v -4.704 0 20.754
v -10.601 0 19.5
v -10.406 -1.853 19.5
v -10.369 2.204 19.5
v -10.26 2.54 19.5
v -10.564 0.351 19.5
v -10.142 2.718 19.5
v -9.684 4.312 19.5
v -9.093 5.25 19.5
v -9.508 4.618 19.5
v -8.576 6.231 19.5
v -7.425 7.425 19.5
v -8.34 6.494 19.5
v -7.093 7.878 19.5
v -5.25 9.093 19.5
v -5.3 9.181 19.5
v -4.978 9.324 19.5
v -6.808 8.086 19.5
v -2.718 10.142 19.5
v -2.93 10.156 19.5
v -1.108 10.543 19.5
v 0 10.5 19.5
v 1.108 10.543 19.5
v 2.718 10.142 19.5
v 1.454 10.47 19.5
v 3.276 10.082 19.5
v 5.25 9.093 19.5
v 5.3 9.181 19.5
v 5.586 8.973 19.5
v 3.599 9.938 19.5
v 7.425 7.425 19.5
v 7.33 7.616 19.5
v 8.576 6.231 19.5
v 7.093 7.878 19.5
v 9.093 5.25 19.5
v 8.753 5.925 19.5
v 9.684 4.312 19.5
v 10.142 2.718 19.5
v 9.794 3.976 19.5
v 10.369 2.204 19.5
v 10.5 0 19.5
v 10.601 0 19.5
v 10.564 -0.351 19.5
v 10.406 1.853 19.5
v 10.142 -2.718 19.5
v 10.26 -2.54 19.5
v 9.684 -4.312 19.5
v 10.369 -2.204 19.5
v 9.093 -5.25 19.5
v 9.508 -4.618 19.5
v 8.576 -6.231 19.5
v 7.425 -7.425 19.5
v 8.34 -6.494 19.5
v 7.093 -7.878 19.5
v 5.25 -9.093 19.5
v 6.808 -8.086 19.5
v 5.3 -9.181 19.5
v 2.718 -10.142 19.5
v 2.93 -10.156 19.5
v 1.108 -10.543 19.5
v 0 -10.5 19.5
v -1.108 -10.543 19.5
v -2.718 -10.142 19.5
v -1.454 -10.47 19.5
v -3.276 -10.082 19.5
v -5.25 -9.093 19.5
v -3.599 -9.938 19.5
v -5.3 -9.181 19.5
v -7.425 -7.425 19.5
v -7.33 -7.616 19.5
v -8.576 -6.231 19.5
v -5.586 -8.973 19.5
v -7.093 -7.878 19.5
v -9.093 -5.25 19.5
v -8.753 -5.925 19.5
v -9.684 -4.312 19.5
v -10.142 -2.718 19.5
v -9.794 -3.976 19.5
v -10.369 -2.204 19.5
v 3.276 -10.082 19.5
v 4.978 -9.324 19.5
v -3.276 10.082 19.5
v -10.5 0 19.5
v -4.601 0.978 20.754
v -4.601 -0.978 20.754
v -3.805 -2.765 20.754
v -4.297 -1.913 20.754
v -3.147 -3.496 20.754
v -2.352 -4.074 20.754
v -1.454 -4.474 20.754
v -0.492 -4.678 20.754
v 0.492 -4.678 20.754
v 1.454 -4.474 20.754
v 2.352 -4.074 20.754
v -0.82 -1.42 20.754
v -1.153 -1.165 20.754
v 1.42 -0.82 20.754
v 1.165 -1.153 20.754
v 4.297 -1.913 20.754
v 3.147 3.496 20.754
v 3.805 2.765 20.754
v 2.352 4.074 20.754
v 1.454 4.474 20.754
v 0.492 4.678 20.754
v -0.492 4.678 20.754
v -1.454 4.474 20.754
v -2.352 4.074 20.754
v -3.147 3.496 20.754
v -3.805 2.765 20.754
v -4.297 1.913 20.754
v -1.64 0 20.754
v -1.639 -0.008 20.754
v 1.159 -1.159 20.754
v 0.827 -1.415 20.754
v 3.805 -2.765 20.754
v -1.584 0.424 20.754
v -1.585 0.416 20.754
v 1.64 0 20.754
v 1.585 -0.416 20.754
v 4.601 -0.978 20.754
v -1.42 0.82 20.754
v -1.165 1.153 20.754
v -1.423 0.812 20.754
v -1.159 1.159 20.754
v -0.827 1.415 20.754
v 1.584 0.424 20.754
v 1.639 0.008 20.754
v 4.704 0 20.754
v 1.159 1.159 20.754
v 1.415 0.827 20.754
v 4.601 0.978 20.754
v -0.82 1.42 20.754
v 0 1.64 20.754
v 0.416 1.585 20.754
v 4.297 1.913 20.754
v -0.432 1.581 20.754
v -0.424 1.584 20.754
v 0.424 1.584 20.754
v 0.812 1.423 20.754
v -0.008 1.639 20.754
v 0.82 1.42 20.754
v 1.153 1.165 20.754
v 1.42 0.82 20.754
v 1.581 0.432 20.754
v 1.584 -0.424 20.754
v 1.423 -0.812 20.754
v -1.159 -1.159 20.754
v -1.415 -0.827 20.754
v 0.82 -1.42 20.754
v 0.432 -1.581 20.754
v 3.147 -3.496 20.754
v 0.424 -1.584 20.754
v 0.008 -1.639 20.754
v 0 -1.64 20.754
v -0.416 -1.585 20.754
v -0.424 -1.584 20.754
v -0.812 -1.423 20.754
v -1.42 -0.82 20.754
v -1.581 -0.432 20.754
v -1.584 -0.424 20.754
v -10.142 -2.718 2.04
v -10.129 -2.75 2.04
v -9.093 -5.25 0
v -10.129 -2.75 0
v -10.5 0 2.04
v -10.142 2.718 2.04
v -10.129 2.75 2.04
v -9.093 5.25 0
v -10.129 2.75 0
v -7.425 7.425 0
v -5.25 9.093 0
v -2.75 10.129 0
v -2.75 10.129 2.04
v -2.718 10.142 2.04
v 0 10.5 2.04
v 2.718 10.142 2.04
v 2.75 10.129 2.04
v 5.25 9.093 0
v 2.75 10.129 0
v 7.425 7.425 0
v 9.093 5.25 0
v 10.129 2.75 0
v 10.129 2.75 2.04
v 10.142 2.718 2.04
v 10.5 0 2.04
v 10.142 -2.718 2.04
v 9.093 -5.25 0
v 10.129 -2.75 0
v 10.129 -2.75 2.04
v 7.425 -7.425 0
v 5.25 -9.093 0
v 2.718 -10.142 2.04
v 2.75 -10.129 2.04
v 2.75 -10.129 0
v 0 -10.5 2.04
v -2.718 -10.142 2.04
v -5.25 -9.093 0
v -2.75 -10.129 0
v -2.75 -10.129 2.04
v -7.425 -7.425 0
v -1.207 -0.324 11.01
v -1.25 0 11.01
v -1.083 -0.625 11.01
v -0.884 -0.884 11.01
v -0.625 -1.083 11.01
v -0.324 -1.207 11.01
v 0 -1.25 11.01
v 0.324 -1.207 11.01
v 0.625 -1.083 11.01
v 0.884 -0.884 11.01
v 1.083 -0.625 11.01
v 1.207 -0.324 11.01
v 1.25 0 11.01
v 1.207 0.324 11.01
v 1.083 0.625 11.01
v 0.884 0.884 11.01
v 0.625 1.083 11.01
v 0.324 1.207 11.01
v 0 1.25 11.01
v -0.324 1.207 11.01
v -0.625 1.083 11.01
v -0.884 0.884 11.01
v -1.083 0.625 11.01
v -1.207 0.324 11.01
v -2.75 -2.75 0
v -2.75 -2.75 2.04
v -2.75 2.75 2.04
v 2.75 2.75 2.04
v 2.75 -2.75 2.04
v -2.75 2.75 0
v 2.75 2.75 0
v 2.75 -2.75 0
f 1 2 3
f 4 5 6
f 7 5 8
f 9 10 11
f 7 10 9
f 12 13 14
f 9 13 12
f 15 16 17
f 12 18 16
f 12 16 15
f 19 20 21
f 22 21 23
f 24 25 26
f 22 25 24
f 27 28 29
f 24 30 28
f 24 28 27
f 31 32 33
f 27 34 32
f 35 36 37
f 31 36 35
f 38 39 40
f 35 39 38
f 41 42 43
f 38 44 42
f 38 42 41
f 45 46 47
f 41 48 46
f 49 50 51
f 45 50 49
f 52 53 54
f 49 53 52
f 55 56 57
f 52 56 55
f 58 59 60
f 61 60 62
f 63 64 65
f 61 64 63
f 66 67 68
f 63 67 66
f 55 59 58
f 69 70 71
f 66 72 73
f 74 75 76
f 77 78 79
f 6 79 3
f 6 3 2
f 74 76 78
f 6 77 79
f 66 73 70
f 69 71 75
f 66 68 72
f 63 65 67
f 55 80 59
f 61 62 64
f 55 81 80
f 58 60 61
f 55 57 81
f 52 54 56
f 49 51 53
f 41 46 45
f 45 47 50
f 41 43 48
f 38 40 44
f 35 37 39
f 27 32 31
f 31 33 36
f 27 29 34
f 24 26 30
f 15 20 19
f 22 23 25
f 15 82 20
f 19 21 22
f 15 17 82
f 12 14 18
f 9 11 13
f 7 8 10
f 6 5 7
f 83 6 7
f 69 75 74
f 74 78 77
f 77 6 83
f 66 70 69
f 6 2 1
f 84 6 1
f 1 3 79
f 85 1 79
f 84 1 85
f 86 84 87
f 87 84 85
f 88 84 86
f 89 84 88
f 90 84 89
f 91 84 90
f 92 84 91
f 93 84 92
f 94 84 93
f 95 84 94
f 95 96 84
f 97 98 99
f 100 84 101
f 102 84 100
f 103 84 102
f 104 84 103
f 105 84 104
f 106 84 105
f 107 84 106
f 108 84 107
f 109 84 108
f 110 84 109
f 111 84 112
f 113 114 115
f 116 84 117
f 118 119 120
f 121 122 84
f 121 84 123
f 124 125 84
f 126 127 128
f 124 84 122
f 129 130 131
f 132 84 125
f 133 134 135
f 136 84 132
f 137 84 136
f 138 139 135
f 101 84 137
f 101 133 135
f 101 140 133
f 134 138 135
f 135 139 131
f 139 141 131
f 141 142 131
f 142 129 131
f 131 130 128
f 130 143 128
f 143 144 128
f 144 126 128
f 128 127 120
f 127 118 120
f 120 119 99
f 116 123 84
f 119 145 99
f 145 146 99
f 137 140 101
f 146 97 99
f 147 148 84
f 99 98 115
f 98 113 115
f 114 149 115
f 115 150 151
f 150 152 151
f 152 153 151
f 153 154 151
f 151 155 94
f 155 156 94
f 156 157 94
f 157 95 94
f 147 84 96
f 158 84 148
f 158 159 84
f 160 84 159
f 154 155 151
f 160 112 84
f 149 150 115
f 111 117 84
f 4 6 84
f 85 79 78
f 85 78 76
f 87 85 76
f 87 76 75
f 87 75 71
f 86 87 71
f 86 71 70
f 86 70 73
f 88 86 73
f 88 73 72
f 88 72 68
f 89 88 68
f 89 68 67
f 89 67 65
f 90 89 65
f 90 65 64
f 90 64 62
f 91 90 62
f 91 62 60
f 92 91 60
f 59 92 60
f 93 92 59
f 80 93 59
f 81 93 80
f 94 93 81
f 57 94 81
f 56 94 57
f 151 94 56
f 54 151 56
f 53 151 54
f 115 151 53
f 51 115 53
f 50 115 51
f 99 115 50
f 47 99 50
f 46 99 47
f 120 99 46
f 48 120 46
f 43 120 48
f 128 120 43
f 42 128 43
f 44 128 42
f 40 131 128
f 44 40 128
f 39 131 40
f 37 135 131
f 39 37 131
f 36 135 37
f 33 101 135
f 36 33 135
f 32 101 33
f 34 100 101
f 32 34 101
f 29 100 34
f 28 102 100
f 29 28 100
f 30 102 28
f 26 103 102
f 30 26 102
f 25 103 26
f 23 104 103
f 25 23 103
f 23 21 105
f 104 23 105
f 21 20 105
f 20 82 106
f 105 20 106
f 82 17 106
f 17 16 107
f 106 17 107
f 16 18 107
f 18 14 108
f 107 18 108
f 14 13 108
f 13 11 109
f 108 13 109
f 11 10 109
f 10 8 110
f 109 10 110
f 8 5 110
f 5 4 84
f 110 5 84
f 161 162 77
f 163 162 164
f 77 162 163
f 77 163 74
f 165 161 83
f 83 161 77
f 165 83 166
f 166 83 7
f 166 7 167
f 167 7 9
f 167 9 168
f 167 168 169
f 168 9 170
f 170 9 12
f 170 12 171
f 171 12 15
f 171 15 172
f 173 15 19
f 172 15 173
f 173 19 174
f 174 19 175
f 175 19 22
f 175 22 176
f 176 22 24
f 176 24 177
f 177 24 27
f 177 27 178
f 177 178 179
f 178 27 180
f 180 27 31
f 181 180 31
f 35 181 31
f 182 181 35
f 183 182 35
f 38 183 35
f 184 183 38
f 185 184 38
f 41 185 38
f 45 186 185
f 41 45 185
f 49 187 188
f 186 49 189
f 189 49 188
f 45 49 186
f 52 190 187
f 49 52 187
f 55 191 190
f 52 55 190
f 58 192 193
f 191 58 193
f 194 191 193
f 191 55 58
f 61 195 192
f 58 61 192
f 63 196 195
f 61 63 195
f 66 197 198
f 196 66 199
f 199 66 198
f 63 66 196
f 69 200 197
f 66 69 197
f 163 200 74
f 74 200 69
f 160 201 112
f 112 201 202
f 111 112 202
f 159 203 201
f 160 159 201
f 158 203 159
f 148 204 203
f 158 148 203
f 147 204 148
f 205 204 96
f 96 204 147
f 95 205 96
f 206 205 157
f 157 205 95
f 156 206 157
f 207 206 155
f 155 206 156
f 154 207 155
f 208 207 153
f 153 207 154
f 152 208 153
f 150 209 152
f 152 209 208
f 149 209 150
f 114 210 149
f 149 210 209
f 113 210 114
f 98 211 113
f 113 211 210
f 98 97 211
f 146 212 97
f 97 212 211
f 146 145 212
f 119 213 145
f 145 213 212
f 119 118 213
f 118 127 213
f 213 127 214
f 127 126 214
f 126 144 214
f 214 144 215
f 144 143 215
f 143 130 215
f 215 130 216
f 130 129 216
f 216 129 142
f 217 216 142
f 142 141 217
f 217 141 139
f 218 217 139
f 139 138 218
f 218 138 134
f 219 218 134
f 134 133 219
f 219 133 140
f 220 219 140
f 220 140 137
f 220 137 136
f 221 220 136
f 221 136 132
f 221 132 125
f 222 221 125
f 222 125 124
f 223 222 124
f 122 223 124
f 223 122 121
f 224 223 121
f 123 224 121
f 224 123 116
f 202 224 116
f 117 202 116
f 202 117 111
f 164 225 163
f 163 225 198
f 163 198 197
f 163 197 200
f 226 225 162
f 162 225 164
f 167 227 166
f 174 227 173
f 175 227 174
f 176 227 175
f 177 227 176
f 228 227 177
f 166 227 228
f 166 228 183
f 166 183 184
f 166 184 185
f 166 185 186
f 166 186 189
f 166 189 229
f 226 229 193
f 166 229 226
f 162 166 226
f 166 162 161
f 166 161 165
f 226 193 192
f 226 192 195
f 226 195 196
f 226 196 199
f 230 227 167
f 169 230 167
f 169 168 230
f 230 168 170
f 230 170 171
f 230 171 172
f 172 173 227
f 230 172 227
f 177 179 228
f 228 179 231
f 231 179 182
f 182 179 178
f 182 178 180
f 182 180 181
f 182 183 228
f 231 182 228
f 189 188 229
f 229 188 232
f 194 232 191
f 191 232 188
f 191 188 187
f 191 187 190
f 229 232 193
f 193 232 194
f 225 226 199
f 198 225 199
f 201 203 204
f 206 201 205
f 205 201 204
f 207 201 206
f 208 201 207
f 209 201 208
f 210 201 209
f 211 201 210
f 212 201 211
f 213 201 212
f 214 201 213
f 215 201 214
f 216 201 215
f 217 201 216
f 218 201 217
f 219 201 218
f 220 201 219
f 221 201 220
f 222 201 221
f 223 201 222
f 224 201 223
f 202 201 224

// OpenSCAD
height = 19.5;
head_radius = 90 / 2;
hole_radius = 21 / 2;
motor_arm_cuts = 4;
cutwidth = 5.5;
cutdepth = 2.05;

xbot_head_spacer(height, hole_radius, head_radius, motor_arm_cuts, cutwidth, cutdepth);

module xbot_head_spacer(mh, hr, topr, numcut, cutw, cutd) {
	difference() {
	union() {
	difference() {
		cylinder(r = hr, h = mh, center = false, $fn=24);
		for (i = [0 : numcut - 1]) {
			rotate([0, 0, i * 90])
			translate([(hr) / 2, 0, cutd / 2 - 0.01]) cube([hr, cutw, cutd], center=true);
		}
	}
	// round end
	translate([0, 0, -43.5]) difference() {
		translate([0, 0, mh]) sphere(r = topr);
		translate([0, 0, mh - 1.5]) cube([topr * 2, topr * 2, topr * 2], center=true);
	}
	}
	// set screw
	translate([0, 0, mh - 10 + 1.51]) 
		cylinder(r1 = 1.25, r2 = 1.65, h = 10, center = false, $fn=24);
	}
}
